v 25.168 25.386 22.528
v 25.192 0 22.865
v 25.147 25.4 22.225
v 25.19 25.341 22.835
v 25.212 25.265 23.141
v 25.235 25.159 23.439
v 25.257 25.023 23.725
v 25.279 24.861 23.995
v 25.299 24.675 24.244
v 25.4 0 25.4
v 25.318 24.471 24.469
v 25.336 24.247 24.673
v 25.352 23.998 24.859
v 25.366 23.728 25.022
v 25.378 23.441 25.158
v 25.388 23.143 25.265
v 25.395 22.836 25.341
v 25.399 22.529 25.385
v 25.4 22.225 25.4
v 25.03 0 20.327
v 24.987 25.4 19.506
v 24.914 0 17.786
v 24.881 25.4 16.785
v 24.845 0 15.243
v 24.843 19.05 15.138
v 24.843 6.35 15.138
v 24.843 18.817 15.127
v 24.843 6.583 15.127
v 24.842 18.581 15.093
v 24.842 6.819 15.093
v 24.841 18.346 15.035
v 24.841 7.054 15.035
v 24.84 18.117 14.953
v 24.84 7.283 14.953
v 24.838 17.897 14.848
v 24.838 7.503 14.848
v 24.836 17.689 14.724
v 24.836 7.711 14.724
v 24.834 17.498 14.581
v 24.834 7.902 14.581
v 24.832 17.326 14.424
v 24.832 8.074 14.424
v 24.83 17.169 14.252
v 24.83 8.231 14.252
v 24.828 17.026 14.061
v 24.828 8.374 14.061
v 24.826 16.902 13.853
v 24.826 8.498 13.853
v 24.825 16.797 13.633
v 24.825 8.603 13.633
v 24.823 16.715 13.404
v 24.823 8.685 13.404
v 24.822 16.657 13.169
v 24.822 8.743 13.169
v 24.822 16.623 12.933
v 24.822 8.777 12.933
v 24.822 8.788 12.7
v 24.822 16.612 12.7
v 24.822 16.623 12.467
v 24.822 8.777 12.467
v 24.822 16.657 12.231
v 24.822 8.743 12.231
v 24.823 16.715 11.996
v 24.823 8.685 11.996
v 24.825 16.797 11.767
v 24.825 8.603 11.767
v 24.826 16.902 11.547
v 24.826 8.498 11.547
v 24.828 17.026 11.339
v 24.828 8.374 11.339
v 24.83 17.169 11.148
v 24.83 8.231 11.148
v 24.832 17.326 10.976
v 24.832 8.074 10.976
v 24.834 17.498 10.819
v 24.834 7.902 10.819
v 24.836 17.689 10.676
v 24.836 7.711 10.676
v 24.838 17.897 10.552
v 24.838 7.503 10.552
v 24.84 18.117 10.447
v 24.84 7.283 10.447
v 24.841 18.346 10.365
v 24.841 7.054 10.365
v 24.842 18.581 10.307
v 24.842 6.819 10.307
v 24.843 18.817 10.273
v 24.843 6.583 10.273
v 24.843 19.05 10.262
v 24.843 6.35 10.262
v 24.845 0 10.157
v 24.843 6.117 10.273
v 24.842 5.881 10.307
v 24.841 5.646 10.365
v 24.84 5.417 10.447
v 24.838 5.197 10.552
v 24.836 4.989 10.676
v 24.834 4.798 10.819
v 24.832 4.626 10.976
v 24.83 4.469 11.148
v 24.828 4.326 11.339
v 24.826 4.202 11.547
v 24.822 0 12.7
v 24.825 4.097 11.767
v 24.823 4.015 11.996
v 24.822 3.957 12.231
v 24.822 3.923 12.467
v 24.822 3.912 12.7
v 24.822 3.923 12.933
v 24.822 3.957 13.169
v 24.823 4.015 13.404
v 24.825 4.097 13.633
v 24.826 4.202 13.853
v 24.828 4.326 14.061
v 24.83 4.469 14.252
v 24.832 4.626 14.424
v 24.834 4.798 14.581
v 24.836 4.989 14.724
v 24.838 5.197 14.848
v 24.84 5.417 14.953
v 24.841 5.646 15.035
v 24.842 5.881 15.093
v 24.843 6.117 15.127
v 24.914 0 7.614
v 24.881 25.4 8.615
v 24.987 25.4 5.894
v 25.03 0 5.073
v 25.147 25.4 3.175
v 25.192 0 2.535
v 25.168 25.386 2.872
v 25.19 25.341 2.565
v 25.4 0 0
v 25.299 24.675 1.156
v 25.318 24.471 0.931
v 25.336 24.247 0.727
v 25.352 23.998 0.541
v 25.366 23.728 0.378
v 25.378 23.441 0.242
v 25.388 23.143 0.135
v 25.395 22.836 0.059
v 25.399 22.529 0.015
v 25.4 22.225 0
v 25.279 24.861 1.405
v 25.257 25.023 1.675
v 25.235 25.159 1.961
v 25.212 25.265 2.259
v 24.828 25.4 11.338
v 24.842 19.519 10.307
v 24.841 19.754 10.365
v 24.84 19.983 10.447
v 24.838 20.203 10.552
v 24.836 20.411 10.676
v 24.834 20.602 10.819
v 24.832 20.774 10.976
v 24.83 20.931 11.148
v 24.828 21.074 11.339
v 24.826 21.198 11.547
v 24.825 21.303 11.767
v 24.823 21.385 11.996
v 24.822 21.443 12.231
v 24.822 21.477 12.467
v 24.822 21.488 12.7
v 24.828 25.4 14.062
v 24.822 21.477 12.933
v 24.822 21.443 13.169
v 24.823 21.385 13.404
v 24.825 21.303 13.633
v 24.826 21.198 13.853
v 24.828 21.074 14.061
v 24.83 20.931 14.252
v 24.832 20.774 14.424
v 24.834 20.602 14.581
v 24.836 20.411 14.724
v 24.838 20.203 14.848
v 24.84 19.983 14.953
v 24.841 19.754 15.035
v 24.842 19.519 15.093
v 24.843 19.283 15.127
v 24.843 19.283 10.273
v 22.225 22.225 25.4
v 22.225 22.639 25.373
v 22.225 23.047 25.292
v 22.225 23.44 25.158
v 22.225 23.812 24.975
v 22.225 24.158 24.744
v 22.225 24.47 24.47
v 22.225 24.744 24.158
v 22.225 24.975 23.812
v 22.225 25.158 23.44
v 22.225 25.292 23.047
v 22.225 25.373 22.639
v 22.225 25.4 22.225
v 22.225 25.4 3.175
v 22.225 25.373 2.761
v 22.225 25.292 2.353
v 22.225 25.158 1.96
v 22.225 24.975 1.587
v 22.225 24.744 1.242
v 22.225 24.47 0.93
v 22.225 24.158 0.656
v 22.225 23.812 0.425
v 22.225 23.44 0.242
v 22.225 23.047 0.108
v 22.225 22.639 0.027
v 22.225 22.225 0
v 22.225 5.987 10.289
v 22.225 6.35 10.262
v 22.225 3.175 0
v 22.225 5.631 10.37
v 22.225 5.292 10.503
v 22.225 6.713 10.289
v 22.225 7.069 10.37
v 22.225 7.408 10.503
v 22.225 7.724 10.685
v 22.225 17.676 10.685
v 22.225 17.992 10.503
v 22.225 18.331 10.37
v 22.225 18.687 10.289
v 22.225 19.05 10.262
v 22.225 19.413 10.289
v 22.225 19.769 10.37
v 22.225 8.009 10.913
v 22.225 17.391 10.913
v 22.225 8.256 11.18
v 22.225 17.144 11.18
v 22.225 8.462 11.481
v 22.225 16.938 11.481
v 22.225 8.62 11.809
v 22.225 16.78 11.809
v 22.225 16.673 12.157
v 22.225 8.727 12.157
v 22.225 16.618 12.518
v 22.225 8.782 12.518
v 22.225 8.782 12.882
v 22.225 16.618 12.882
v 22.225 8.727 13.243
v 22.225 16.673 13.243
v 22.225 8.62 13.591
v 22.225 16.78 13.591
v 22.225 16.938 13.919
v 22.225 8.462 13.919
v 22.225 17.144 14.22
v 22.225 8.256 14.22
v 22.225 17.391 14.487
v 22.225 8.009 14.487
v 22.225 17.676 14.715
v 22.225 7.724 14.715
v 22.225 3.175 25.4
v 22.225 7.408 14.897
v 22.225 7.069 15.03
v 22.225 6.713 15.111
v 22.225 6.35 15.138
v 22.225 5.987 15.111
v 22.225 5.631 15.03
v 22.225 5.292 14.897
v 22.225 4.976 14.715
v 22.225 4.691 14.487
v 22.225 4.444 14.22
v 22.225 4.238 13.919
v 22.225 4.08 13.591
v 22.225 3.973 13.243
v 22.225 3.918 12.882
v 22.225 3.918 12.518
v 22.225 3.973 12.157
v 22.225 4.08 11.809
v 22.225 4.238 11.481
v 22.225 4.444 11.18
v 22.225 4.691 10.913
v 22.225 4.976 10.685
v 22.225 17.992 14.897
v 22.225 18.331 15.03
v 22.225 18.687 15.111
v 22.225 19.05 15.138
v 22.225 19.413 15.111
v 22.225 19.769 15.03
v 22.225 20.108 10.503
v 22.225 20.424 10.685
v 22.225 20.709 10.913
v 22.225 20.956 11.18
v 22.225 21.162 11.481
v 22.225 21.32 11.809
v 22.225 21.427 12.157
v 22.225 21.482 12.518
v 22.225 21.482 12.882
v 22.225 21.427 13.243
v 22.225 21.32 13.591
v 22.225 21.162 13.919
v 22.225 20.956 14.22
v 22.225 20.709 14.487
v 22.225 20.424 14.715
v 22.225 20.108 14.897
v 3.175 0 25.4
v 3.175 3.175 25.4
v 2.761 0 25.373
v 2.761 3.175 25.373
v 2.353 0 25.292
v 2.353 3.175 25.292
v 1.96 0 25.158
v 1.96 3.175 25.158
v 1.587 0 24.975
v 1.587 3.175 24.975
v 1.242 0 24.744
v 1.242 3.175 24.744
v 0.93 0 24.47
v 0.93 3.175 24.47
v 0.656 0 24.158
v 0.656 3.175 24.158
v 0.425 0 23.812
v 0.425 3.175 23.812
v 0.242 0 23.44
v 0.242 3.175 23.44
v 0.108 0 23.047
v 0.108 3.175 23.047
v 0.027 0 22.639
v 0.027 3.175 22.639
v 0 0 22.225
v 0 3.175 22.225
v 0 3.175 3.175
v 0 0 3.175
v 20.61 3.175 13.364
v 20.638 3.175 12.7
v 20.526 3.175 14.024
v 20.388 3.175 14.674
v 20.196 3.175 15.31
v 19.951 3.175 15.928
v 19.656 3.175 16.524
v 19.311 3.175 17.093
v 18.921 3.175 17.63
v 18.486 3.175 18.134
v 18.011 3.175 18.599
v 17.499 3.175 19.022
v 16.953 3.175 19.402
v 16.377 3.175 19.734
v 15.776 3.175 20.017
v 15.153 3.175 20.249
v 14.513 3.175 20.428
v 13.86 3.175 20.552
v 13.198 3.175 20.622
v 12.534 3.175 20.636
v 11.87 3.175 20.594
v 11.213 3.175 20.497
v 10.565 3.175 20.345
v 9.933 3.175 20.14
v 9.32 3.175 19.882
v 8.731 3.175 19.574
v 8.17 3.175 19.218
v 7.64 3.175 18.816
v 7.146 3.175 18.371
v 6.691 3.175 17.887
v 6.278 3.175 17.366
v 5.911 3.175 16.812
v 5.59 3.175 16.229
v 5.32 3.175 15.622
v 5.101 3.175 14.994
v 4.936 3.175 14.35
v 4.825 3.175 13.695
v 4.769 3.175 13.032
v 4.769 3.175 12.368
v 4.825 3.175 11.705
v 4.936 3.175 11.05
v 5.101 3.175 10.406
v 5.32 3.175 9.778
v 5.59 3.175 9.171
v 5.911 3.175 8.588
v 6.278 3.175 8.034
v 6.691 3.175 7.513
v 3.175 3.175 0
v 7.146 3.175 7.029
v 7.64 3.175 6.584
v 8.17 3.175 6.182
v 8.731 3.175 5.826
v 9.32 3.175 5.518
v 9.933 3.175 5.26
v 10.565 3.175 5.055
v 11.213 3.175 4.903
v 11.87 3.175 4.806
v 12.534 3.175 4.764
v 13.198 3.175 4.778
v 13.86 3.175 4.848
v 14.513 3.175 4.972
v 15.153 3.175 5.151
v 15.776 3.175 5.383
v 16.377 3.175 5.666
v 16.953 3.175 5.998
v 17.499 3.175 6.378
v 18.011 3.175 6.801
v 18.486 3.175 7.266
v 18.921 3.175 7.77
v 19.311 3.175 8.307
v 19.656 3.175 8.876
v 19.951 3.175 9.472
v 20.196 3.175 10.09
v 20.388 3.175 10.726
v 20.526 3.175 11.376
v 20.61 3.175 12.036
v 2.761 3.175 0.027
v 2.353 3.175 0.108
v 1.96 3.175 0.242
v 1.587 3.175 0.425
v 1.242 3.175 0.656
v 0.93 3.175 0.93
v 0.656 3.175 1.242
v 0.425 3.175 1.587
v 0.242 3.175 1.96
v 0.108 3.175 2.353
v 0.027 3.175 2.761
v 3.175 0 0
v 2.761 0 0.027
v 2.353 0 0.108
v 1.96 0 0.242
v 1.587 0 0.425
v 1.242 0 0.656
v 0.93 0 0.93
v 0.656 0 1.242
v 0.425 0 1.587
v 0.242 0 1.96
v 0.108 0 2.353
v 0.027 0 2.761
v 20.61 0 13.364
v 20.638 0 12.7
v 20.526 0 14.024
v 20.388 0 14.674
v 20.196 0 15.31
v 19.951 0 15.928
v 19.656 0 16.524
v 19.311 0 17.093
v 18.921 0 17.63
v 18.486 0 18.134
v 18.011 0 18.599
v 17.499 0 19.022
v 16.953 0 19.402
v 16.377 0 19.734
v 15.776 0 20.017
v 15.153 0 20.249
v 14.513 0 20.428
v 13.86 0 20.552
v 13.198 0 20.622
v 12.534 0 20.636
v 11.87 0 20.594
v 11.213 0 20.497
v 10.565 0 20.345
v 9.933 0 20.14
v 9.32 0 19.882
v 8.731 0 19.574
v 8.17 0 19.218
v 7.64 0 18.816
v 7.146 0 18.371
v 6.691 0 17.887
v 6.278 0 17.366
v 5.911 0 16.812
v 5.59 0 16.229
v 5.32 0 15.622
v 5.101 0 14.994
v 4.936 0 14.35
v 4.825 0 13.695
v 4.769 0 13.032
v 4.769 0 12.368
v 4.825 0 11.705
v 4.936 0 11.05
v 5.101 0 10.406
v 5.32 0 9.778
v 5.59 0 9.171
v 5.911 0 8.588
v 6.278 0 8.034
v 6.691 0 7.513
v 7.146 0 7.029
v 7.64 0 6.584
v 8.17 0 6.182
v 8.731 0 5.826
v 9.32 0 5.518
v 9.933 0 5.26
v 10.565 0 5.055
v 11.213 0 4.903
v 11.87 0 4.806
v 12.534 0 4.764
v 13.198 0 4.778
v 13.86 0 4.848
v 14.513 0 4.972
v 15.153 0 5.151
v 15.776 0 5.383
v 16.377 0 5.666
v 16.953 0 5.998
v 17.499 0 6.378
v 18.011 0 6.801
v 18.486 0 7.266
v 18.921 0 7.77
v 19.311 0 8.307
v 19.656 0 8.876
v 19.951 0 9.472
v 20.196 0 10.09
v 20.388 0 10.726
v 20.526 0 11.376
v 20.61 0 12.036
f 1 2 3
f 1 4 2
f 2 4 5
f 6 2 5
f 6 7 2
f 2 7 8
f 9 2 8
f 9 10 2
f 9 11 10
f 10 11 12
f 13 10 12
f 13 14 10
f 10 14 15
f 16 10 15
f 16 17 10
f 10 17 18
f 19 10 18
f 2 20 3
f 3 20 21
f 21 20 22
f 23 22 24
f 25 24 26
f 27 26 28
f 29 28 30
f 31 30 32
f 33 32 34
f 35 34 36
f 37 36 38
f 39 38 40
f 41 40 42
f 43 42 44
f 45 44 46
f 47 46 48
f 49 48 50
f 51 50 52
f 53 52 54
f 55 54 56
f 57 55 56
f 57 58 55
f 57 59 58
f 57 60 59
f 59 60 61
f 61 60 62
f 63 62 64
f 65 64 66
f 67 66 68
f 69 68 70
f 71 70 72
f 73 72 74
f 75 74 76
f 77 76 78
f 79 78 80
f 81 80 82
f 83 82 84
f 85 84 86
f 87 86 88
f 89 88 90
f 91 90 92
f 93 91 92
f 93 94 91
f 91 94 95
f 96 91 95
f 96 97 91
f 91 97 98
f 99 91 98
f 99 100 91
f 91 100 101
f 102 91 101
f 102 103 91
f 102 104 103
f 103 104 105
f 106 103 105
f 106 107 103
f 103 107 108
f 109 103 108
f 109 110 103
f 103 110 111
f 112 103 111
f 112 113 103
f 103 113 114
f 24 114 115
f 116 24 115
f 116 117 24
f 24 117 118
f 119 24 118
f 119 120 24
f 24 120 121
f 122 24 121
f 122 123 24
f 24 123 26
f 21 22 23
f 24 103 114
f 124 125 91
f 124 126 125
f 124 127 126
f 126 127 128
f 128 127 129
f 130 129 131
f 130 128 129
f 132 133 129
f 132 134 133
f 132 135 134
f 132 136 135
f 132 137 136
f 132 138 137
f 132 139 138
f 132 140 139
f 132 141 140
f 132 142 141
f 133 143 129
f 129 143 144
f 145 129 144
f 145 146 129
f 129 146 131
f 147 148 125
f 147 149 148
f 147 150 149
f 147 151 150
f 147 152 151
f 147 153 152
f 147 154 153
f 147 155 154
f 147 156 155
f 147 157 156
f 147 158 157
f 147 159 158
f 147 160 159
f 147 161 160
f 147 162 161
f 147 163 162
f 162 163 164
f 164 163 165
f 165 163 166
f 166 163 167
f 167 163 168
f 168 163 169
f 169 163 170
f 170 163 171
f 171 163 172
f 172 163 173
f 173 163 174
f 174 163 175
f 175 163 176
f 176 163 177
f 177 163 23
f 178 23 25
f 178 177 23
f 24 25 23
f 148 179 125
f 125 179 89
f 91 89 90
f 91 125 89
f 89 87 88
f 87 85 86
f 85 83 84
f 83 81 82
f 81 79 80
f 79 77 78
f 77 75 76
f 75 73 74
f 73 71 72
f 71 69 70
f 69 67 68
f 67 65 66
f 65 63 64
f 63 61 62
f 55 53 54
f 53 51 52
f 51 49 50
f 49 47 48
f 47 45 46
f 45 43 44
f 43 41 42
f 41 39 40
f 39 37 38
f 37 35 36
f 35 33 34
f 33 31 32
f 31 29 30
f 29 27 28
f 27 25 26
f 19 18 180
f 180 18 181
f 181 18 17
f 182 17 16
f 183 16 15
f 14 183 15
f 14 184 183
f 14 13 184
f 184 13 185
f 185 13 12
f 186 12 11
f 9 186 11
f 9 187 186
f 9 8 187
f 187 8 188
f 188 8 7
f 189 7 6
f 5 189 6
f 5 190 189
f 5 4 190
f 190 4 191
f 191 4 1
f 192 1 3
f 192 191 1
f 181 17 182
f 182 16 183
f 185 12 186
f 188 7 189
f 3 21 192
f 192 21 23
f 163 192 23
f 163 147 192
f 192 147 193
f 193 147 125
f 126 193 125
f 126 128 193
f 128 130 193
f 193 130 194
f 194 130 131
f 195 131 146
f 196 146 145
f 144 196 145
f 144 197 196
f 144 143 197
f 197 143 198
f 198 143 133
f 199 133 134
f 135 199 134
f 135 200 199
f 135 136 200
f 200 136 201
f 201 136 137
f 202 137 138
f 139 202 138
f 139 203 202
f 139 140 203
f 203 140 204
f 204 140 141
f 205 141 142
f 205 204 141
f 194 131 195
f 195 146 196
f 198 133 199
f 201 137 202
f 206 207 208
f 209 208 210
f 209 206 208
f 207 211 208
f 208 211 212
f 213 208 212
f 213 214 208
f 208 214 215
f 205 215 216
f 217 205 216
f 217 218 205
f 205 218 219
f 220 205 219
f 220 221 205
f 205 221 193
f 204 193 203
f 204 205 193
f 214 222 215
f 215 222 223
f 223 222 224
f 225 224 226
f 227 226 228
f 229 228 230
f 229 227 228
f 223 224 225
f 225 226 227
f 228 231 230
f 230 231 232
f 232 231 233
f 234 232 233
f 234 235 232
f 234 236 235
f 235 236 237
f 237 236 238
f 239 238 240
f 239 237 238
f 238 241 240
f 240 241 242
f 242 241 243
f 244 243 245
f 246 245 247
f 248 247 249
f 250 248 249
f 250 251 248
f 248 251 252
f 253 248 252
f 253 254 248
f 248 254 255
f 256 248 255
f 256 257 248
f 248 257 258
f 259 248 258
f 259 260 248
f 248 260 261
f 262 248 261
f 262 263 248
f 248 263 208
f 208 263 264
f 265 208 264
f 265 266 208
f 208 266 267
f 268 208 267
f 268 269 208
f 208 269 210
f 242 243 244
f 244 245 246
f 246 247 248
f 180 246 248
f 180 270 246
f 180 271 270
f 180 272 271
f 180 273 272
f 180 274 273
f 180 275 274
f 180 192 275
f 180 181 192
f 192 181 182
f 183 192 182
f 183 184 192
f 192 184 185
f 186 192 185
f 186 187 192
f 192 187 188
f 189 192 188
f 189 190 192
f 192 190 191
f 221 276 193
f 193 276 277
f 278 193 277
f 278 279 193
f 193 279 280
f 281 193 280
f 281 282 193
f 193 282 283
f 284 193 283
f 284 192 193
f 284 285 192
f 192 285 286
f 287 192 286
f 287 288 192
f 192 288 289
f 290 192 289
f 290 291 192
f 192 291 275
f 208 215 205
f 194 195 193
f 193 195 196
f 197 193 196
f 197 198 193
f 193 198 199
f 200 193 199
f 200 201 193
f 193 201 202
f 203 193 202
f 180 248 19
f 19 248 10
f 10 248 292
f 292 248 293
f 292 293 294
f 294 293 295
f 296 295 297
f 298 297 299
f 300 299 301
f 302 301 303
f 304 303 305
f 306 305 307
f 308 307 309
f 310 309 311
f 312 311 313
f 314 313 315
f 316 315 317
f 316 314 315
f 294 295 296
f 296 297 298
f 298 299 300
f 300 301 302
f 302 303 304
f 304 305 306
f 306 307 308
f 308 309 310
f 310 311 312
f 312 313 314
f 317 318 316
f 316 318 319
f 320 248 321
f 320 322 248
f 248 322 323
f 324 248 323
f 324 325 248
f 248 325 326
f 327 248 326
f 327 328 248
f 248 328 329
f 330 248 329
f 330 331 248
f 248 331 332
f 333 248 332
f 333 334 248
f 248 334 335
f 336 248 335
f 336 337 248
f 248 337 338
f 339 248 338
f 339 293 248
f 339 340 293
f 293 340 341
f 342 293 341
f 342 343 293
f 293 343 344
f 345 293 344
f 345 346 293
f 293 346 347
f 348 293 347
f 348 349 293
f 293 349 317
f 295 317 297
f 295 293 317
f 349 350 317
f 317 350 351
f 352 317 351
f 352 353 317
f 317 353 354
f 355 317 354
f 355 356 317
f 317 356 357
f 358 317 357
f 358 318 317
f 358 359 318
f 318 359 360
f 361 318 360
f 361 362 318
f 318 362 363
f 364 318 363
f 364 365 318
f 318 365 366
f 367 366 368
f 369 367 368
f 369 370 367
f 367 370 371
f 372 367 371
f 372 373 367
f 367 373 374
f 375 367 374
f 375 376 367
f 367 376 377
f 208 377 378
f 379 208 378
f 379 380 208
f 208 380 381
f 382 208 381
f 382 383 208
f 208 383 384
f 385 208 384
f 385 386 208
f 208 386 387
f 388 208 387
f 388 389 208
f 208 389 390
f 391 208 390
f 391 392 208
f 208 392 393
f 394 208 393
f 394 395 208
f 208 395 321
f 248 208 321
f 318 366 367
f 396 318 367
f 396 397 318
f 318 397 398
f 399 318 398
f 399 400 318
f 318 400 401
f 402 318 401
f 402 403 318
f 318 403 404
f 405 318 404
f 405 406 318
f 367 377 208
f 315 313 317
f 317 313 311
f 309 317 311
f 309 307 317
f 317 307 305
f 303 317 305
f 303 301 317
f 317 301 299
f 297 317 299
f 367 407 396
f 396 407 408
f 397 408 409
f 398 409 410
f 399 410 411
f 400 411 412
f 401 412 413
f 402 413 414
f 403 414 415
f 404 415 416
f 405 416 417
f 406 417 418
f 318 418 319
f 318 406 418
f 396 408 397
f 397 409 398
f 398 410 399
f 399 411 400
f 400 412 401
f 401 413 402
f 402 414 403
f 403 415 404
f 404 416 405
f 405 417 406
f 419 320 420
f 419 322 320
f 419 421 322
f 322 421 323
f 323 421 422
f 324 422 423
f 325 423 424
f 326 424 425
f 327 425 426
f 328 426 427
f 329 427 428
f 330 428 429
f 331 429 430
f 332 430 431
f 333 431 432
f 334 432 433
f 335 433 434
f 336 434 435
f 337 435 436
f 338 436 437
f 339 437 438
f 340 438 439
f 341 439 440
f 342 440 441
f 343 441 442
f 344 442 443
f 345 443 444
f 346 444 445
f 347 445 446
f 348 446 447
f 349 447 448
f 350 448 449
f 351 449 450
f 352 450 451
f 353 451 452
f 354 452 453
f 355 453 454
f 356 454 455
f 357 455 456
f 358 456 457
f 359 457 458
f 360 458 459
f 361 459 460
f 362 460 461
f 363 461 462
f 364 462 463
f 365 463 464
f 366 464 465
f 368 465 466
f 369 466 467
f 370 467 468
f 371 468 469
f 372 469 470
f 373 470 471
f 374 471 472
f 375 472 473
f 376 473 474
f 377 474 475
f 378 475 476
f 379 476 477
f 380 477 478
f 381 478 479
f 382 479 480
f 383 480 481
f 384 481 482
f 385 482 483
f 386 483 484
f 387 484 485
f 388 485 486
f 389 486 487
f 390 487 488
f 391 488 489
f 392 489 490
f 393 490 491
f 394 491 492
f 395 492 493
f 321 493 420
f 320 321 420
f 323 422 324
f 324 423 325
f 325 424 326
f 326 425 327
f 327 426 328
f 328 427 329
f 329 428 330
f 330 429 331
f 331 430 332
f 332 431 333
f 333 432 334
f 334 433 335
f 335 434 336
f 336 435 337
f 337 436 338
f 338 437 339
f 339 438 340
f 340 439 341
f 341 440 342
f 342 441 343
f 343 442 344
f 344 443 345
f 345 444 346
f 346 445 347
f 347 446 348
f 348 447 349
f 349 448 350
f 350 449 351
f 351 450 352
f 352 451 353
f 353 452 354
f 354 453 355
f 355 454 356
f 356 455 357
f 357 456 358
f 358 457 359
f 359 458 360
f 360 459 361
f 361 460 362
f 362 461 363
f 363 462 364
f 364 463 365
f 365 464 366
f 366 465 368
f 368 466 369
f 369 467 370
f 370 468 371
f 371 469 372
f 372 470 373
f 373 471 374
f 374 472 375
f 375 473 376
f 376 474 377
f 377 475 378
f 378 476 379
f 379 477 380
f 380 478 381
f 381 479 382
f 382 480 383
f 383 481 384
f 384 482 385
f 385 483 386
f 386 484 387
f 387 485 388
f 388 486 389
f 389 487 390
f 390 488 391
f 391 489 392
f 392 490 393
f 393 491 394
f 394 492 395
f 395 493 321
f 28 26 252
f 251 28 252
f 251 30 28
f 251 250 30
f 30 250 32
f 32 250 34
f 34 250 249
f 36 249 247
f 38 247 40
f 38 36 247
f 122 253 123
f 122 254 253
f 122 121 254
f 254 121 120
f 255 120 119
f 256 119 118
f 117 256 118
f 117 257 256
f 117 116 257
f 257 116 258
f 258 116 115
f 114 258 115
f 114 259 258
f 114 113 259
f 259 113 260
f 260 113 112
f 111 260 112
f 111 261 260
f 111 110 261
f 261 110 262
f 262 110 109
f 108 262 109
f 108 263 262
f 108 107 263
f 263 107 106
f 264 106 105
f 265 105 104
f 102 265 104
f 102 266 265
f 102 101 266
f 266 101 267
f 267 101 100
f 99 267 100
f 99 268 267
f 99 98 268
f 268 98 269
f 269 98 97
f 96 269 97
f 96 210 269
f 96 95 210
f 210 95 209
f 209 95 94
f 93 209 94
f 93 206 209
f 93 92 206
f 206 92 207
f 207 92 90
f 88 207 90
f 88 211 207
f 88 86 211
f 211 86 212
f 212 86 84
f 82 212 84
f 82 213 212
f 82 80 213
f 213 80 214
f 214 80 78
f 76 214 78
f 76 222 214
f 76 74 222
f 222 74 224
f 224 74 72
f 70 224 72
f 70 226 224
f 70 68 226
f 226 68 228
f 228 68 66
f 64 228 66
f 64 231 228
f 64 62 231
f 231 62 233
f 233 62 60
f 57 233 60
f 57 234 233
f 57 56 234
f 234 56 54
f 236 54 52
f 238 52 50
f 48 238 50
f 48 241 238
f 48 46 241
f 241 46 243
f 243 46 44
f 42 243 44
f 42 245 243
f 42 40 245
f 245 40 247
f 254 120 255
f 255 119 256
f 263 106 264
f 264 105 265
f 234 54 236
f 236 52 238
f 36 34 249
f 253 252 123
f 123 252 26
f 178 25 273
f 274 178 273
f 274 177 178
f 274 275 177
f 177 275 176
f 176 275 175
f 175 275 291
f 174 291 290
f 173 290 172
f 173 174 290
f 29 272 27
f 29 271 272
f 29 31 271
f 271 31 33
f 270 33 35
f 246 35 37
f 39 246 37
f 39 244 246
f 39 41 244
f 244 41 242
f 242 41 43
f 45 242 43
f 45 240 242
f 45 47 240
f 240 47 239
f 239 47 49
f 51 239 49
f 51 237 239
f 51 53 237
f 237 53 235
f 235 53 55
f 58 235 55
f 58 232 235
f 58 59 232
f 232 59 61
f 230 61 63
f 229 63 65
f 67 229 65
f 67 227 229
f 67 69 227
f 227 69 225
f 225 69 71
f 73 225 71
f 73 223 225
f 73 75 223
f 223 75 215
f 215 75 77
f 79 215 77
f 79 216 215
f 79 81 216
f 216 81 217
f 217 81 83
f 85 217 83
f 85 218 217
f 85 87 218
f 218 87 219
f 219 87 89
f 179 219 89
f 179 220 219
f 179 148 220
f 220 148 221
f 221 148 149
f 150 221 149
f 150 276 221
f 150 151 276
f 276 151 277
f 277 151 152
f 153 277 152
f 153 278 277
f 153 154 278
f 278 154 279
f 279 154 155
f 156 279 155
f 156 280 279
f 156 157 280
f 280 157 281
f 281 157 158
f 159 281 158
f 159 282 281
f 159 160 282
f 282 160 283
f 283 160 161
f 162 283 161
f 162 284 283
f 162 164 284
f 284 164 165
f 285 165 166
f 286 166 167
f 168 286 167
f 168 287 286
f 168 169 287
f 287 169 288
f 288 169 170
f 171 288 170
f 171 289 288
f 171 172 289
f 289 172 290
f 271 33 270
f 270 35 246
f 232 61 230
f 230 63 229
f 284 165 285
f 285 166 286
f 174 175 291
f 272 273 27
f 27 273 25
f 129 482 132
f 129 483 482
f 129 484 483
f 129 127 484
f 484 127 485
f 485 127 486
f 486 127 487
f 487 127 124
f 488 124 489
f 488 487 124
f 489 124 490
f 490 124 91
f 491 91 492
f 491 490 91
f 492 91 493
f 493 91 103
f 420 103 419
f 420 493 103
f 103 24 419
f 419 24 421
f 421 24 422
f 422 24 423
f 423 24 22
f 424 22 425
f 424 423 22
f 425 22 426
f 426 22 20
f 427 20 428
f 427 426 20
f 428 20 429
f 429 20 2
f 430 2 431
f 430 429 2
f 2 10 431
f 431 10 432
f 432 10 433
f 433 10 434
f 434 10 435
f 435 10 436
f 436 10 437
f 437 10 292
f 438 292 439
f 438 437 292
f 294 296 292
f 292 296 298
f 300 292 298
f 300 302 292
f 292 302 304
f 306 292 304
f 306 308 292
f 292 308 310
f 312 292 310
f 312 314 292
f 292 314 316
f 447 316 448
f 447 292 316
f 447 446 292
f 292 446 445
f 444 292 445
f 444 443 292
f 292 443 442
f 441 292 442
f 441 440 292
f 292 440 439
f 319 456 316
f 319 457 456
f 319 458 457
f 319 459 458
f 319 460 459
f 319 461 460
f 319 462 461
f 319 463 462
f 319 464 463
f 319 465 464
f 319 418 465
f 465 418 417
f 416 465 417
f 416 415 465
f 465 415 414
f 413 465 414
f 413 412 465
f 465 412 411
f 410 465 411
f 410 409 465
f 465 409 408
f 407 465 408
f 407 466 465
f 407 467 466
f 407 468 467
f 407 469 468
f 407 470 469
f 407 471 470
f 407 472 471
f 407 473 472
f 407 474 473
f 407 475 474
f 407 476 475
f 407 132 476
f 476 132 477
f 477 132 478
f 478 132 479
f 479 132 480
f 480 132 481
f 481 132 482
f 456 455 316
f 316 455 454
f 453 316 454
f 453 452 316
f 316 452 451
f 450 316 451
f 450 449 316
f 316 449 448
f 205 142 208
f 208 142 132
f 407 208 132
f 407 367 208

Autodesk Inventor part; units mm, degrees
ref_plane "YZ Plane" through (0, 0, 0) normal (1, 0, 0) x (0, 1, 0)
ref_plane "XZ Plane" through (0, 0, 0) normal (0, 1, 0) x (-1, 0, 0)
ref_plane "XY Plane" through (0, 0, 0) normal (0, 0, 1) x (1, 0, 0)
sketch "Sketch1" plane through (0, 0, 0) normal (0, 0, 1) x (1, 0, 0)
  line L0 (0, 0) -> (25.4, 0)
  line L1 (25.4, 0) -> (25.4, 25.4)
  line L2 (25.4, 25.4) -> (22.225, 25.4)
  line L3 (22.225, 25.4) -> (22.225, 3.175)
  line L4 (22.225, 3.175) -> (0, 3.175)
  line L5 (0, 3.175) -> (0, 0)
  dimension "d0" = 3.175
  dimension "d1" = 25.4
extrude "Extrusion1" add sketch "Sketch1" along normal blind 25.4
sketch "Sketch2" plane through (25.4, 0, 0) normal (1, 0, 0) x (0, 0, -1)
  line L0 (0, 0) -> (0, 25.4) projected
  line L1 (0, 25.4) -> (-25.4, 25.4) projected
  circle A0 centre (-12.7, 19.05) radius 2.4384
  circle A1 centre (-12.7, 6.35) radius 2.4384
  line L2 (-12.7, 19.05) -> (-12.7, 6.35) construction
  dimension "d4" = 4.8768
  dimension "d5" = 4.8768
  dimension "d6" = 12.7
  dimension "d7" = 12.7
  dimension "d8" = 6.35
extrude "Extrusion2" cut sketch "Sketch2" against normal through all
sketch "Sketch3" plane through (0, 3.175, 0) normal (0, 1, 0) x (1, 0, 0)
  line L0 (0, -25.4) -> (22.225, -25.4) projected
  line L1 (0, 0) -> (0, -25.4) projected
  circle A0 centre (12.7, -12.7) radius 7.9375
  dimension "d11" = 12.7
  dimension "d12" = 12.7
  dimension "d13" = 15.875
extrude "Extrusion3" cut sketch "Sketch3" against normal up to next
fillet "Fillet1" radius 3.175 4 edges at (0, 1.5875, 0) (0, 1.5875, 25.4) (23.8125, 25.4, 25.4) (23.8125, 25.4, 0)
sketch "Sketch4" plane through (25.4, 0, 0) normal (0, -1, 0) x (1, 0, 0)
  line L0 (0, 0) -> (0, 25.4) projected
  arc A0 (0, 25.4) -> (0, 0) centre (139.1215, 12.7) ccw
  line L1 (0, 25.4) -> (0, 0)
  point P0 (-25.4, 0)
  dimension "d17" = 139.7
extrude "Extrusion4" cut sketch "Sketch4" against normal through all
properties part number "HopperMount"
